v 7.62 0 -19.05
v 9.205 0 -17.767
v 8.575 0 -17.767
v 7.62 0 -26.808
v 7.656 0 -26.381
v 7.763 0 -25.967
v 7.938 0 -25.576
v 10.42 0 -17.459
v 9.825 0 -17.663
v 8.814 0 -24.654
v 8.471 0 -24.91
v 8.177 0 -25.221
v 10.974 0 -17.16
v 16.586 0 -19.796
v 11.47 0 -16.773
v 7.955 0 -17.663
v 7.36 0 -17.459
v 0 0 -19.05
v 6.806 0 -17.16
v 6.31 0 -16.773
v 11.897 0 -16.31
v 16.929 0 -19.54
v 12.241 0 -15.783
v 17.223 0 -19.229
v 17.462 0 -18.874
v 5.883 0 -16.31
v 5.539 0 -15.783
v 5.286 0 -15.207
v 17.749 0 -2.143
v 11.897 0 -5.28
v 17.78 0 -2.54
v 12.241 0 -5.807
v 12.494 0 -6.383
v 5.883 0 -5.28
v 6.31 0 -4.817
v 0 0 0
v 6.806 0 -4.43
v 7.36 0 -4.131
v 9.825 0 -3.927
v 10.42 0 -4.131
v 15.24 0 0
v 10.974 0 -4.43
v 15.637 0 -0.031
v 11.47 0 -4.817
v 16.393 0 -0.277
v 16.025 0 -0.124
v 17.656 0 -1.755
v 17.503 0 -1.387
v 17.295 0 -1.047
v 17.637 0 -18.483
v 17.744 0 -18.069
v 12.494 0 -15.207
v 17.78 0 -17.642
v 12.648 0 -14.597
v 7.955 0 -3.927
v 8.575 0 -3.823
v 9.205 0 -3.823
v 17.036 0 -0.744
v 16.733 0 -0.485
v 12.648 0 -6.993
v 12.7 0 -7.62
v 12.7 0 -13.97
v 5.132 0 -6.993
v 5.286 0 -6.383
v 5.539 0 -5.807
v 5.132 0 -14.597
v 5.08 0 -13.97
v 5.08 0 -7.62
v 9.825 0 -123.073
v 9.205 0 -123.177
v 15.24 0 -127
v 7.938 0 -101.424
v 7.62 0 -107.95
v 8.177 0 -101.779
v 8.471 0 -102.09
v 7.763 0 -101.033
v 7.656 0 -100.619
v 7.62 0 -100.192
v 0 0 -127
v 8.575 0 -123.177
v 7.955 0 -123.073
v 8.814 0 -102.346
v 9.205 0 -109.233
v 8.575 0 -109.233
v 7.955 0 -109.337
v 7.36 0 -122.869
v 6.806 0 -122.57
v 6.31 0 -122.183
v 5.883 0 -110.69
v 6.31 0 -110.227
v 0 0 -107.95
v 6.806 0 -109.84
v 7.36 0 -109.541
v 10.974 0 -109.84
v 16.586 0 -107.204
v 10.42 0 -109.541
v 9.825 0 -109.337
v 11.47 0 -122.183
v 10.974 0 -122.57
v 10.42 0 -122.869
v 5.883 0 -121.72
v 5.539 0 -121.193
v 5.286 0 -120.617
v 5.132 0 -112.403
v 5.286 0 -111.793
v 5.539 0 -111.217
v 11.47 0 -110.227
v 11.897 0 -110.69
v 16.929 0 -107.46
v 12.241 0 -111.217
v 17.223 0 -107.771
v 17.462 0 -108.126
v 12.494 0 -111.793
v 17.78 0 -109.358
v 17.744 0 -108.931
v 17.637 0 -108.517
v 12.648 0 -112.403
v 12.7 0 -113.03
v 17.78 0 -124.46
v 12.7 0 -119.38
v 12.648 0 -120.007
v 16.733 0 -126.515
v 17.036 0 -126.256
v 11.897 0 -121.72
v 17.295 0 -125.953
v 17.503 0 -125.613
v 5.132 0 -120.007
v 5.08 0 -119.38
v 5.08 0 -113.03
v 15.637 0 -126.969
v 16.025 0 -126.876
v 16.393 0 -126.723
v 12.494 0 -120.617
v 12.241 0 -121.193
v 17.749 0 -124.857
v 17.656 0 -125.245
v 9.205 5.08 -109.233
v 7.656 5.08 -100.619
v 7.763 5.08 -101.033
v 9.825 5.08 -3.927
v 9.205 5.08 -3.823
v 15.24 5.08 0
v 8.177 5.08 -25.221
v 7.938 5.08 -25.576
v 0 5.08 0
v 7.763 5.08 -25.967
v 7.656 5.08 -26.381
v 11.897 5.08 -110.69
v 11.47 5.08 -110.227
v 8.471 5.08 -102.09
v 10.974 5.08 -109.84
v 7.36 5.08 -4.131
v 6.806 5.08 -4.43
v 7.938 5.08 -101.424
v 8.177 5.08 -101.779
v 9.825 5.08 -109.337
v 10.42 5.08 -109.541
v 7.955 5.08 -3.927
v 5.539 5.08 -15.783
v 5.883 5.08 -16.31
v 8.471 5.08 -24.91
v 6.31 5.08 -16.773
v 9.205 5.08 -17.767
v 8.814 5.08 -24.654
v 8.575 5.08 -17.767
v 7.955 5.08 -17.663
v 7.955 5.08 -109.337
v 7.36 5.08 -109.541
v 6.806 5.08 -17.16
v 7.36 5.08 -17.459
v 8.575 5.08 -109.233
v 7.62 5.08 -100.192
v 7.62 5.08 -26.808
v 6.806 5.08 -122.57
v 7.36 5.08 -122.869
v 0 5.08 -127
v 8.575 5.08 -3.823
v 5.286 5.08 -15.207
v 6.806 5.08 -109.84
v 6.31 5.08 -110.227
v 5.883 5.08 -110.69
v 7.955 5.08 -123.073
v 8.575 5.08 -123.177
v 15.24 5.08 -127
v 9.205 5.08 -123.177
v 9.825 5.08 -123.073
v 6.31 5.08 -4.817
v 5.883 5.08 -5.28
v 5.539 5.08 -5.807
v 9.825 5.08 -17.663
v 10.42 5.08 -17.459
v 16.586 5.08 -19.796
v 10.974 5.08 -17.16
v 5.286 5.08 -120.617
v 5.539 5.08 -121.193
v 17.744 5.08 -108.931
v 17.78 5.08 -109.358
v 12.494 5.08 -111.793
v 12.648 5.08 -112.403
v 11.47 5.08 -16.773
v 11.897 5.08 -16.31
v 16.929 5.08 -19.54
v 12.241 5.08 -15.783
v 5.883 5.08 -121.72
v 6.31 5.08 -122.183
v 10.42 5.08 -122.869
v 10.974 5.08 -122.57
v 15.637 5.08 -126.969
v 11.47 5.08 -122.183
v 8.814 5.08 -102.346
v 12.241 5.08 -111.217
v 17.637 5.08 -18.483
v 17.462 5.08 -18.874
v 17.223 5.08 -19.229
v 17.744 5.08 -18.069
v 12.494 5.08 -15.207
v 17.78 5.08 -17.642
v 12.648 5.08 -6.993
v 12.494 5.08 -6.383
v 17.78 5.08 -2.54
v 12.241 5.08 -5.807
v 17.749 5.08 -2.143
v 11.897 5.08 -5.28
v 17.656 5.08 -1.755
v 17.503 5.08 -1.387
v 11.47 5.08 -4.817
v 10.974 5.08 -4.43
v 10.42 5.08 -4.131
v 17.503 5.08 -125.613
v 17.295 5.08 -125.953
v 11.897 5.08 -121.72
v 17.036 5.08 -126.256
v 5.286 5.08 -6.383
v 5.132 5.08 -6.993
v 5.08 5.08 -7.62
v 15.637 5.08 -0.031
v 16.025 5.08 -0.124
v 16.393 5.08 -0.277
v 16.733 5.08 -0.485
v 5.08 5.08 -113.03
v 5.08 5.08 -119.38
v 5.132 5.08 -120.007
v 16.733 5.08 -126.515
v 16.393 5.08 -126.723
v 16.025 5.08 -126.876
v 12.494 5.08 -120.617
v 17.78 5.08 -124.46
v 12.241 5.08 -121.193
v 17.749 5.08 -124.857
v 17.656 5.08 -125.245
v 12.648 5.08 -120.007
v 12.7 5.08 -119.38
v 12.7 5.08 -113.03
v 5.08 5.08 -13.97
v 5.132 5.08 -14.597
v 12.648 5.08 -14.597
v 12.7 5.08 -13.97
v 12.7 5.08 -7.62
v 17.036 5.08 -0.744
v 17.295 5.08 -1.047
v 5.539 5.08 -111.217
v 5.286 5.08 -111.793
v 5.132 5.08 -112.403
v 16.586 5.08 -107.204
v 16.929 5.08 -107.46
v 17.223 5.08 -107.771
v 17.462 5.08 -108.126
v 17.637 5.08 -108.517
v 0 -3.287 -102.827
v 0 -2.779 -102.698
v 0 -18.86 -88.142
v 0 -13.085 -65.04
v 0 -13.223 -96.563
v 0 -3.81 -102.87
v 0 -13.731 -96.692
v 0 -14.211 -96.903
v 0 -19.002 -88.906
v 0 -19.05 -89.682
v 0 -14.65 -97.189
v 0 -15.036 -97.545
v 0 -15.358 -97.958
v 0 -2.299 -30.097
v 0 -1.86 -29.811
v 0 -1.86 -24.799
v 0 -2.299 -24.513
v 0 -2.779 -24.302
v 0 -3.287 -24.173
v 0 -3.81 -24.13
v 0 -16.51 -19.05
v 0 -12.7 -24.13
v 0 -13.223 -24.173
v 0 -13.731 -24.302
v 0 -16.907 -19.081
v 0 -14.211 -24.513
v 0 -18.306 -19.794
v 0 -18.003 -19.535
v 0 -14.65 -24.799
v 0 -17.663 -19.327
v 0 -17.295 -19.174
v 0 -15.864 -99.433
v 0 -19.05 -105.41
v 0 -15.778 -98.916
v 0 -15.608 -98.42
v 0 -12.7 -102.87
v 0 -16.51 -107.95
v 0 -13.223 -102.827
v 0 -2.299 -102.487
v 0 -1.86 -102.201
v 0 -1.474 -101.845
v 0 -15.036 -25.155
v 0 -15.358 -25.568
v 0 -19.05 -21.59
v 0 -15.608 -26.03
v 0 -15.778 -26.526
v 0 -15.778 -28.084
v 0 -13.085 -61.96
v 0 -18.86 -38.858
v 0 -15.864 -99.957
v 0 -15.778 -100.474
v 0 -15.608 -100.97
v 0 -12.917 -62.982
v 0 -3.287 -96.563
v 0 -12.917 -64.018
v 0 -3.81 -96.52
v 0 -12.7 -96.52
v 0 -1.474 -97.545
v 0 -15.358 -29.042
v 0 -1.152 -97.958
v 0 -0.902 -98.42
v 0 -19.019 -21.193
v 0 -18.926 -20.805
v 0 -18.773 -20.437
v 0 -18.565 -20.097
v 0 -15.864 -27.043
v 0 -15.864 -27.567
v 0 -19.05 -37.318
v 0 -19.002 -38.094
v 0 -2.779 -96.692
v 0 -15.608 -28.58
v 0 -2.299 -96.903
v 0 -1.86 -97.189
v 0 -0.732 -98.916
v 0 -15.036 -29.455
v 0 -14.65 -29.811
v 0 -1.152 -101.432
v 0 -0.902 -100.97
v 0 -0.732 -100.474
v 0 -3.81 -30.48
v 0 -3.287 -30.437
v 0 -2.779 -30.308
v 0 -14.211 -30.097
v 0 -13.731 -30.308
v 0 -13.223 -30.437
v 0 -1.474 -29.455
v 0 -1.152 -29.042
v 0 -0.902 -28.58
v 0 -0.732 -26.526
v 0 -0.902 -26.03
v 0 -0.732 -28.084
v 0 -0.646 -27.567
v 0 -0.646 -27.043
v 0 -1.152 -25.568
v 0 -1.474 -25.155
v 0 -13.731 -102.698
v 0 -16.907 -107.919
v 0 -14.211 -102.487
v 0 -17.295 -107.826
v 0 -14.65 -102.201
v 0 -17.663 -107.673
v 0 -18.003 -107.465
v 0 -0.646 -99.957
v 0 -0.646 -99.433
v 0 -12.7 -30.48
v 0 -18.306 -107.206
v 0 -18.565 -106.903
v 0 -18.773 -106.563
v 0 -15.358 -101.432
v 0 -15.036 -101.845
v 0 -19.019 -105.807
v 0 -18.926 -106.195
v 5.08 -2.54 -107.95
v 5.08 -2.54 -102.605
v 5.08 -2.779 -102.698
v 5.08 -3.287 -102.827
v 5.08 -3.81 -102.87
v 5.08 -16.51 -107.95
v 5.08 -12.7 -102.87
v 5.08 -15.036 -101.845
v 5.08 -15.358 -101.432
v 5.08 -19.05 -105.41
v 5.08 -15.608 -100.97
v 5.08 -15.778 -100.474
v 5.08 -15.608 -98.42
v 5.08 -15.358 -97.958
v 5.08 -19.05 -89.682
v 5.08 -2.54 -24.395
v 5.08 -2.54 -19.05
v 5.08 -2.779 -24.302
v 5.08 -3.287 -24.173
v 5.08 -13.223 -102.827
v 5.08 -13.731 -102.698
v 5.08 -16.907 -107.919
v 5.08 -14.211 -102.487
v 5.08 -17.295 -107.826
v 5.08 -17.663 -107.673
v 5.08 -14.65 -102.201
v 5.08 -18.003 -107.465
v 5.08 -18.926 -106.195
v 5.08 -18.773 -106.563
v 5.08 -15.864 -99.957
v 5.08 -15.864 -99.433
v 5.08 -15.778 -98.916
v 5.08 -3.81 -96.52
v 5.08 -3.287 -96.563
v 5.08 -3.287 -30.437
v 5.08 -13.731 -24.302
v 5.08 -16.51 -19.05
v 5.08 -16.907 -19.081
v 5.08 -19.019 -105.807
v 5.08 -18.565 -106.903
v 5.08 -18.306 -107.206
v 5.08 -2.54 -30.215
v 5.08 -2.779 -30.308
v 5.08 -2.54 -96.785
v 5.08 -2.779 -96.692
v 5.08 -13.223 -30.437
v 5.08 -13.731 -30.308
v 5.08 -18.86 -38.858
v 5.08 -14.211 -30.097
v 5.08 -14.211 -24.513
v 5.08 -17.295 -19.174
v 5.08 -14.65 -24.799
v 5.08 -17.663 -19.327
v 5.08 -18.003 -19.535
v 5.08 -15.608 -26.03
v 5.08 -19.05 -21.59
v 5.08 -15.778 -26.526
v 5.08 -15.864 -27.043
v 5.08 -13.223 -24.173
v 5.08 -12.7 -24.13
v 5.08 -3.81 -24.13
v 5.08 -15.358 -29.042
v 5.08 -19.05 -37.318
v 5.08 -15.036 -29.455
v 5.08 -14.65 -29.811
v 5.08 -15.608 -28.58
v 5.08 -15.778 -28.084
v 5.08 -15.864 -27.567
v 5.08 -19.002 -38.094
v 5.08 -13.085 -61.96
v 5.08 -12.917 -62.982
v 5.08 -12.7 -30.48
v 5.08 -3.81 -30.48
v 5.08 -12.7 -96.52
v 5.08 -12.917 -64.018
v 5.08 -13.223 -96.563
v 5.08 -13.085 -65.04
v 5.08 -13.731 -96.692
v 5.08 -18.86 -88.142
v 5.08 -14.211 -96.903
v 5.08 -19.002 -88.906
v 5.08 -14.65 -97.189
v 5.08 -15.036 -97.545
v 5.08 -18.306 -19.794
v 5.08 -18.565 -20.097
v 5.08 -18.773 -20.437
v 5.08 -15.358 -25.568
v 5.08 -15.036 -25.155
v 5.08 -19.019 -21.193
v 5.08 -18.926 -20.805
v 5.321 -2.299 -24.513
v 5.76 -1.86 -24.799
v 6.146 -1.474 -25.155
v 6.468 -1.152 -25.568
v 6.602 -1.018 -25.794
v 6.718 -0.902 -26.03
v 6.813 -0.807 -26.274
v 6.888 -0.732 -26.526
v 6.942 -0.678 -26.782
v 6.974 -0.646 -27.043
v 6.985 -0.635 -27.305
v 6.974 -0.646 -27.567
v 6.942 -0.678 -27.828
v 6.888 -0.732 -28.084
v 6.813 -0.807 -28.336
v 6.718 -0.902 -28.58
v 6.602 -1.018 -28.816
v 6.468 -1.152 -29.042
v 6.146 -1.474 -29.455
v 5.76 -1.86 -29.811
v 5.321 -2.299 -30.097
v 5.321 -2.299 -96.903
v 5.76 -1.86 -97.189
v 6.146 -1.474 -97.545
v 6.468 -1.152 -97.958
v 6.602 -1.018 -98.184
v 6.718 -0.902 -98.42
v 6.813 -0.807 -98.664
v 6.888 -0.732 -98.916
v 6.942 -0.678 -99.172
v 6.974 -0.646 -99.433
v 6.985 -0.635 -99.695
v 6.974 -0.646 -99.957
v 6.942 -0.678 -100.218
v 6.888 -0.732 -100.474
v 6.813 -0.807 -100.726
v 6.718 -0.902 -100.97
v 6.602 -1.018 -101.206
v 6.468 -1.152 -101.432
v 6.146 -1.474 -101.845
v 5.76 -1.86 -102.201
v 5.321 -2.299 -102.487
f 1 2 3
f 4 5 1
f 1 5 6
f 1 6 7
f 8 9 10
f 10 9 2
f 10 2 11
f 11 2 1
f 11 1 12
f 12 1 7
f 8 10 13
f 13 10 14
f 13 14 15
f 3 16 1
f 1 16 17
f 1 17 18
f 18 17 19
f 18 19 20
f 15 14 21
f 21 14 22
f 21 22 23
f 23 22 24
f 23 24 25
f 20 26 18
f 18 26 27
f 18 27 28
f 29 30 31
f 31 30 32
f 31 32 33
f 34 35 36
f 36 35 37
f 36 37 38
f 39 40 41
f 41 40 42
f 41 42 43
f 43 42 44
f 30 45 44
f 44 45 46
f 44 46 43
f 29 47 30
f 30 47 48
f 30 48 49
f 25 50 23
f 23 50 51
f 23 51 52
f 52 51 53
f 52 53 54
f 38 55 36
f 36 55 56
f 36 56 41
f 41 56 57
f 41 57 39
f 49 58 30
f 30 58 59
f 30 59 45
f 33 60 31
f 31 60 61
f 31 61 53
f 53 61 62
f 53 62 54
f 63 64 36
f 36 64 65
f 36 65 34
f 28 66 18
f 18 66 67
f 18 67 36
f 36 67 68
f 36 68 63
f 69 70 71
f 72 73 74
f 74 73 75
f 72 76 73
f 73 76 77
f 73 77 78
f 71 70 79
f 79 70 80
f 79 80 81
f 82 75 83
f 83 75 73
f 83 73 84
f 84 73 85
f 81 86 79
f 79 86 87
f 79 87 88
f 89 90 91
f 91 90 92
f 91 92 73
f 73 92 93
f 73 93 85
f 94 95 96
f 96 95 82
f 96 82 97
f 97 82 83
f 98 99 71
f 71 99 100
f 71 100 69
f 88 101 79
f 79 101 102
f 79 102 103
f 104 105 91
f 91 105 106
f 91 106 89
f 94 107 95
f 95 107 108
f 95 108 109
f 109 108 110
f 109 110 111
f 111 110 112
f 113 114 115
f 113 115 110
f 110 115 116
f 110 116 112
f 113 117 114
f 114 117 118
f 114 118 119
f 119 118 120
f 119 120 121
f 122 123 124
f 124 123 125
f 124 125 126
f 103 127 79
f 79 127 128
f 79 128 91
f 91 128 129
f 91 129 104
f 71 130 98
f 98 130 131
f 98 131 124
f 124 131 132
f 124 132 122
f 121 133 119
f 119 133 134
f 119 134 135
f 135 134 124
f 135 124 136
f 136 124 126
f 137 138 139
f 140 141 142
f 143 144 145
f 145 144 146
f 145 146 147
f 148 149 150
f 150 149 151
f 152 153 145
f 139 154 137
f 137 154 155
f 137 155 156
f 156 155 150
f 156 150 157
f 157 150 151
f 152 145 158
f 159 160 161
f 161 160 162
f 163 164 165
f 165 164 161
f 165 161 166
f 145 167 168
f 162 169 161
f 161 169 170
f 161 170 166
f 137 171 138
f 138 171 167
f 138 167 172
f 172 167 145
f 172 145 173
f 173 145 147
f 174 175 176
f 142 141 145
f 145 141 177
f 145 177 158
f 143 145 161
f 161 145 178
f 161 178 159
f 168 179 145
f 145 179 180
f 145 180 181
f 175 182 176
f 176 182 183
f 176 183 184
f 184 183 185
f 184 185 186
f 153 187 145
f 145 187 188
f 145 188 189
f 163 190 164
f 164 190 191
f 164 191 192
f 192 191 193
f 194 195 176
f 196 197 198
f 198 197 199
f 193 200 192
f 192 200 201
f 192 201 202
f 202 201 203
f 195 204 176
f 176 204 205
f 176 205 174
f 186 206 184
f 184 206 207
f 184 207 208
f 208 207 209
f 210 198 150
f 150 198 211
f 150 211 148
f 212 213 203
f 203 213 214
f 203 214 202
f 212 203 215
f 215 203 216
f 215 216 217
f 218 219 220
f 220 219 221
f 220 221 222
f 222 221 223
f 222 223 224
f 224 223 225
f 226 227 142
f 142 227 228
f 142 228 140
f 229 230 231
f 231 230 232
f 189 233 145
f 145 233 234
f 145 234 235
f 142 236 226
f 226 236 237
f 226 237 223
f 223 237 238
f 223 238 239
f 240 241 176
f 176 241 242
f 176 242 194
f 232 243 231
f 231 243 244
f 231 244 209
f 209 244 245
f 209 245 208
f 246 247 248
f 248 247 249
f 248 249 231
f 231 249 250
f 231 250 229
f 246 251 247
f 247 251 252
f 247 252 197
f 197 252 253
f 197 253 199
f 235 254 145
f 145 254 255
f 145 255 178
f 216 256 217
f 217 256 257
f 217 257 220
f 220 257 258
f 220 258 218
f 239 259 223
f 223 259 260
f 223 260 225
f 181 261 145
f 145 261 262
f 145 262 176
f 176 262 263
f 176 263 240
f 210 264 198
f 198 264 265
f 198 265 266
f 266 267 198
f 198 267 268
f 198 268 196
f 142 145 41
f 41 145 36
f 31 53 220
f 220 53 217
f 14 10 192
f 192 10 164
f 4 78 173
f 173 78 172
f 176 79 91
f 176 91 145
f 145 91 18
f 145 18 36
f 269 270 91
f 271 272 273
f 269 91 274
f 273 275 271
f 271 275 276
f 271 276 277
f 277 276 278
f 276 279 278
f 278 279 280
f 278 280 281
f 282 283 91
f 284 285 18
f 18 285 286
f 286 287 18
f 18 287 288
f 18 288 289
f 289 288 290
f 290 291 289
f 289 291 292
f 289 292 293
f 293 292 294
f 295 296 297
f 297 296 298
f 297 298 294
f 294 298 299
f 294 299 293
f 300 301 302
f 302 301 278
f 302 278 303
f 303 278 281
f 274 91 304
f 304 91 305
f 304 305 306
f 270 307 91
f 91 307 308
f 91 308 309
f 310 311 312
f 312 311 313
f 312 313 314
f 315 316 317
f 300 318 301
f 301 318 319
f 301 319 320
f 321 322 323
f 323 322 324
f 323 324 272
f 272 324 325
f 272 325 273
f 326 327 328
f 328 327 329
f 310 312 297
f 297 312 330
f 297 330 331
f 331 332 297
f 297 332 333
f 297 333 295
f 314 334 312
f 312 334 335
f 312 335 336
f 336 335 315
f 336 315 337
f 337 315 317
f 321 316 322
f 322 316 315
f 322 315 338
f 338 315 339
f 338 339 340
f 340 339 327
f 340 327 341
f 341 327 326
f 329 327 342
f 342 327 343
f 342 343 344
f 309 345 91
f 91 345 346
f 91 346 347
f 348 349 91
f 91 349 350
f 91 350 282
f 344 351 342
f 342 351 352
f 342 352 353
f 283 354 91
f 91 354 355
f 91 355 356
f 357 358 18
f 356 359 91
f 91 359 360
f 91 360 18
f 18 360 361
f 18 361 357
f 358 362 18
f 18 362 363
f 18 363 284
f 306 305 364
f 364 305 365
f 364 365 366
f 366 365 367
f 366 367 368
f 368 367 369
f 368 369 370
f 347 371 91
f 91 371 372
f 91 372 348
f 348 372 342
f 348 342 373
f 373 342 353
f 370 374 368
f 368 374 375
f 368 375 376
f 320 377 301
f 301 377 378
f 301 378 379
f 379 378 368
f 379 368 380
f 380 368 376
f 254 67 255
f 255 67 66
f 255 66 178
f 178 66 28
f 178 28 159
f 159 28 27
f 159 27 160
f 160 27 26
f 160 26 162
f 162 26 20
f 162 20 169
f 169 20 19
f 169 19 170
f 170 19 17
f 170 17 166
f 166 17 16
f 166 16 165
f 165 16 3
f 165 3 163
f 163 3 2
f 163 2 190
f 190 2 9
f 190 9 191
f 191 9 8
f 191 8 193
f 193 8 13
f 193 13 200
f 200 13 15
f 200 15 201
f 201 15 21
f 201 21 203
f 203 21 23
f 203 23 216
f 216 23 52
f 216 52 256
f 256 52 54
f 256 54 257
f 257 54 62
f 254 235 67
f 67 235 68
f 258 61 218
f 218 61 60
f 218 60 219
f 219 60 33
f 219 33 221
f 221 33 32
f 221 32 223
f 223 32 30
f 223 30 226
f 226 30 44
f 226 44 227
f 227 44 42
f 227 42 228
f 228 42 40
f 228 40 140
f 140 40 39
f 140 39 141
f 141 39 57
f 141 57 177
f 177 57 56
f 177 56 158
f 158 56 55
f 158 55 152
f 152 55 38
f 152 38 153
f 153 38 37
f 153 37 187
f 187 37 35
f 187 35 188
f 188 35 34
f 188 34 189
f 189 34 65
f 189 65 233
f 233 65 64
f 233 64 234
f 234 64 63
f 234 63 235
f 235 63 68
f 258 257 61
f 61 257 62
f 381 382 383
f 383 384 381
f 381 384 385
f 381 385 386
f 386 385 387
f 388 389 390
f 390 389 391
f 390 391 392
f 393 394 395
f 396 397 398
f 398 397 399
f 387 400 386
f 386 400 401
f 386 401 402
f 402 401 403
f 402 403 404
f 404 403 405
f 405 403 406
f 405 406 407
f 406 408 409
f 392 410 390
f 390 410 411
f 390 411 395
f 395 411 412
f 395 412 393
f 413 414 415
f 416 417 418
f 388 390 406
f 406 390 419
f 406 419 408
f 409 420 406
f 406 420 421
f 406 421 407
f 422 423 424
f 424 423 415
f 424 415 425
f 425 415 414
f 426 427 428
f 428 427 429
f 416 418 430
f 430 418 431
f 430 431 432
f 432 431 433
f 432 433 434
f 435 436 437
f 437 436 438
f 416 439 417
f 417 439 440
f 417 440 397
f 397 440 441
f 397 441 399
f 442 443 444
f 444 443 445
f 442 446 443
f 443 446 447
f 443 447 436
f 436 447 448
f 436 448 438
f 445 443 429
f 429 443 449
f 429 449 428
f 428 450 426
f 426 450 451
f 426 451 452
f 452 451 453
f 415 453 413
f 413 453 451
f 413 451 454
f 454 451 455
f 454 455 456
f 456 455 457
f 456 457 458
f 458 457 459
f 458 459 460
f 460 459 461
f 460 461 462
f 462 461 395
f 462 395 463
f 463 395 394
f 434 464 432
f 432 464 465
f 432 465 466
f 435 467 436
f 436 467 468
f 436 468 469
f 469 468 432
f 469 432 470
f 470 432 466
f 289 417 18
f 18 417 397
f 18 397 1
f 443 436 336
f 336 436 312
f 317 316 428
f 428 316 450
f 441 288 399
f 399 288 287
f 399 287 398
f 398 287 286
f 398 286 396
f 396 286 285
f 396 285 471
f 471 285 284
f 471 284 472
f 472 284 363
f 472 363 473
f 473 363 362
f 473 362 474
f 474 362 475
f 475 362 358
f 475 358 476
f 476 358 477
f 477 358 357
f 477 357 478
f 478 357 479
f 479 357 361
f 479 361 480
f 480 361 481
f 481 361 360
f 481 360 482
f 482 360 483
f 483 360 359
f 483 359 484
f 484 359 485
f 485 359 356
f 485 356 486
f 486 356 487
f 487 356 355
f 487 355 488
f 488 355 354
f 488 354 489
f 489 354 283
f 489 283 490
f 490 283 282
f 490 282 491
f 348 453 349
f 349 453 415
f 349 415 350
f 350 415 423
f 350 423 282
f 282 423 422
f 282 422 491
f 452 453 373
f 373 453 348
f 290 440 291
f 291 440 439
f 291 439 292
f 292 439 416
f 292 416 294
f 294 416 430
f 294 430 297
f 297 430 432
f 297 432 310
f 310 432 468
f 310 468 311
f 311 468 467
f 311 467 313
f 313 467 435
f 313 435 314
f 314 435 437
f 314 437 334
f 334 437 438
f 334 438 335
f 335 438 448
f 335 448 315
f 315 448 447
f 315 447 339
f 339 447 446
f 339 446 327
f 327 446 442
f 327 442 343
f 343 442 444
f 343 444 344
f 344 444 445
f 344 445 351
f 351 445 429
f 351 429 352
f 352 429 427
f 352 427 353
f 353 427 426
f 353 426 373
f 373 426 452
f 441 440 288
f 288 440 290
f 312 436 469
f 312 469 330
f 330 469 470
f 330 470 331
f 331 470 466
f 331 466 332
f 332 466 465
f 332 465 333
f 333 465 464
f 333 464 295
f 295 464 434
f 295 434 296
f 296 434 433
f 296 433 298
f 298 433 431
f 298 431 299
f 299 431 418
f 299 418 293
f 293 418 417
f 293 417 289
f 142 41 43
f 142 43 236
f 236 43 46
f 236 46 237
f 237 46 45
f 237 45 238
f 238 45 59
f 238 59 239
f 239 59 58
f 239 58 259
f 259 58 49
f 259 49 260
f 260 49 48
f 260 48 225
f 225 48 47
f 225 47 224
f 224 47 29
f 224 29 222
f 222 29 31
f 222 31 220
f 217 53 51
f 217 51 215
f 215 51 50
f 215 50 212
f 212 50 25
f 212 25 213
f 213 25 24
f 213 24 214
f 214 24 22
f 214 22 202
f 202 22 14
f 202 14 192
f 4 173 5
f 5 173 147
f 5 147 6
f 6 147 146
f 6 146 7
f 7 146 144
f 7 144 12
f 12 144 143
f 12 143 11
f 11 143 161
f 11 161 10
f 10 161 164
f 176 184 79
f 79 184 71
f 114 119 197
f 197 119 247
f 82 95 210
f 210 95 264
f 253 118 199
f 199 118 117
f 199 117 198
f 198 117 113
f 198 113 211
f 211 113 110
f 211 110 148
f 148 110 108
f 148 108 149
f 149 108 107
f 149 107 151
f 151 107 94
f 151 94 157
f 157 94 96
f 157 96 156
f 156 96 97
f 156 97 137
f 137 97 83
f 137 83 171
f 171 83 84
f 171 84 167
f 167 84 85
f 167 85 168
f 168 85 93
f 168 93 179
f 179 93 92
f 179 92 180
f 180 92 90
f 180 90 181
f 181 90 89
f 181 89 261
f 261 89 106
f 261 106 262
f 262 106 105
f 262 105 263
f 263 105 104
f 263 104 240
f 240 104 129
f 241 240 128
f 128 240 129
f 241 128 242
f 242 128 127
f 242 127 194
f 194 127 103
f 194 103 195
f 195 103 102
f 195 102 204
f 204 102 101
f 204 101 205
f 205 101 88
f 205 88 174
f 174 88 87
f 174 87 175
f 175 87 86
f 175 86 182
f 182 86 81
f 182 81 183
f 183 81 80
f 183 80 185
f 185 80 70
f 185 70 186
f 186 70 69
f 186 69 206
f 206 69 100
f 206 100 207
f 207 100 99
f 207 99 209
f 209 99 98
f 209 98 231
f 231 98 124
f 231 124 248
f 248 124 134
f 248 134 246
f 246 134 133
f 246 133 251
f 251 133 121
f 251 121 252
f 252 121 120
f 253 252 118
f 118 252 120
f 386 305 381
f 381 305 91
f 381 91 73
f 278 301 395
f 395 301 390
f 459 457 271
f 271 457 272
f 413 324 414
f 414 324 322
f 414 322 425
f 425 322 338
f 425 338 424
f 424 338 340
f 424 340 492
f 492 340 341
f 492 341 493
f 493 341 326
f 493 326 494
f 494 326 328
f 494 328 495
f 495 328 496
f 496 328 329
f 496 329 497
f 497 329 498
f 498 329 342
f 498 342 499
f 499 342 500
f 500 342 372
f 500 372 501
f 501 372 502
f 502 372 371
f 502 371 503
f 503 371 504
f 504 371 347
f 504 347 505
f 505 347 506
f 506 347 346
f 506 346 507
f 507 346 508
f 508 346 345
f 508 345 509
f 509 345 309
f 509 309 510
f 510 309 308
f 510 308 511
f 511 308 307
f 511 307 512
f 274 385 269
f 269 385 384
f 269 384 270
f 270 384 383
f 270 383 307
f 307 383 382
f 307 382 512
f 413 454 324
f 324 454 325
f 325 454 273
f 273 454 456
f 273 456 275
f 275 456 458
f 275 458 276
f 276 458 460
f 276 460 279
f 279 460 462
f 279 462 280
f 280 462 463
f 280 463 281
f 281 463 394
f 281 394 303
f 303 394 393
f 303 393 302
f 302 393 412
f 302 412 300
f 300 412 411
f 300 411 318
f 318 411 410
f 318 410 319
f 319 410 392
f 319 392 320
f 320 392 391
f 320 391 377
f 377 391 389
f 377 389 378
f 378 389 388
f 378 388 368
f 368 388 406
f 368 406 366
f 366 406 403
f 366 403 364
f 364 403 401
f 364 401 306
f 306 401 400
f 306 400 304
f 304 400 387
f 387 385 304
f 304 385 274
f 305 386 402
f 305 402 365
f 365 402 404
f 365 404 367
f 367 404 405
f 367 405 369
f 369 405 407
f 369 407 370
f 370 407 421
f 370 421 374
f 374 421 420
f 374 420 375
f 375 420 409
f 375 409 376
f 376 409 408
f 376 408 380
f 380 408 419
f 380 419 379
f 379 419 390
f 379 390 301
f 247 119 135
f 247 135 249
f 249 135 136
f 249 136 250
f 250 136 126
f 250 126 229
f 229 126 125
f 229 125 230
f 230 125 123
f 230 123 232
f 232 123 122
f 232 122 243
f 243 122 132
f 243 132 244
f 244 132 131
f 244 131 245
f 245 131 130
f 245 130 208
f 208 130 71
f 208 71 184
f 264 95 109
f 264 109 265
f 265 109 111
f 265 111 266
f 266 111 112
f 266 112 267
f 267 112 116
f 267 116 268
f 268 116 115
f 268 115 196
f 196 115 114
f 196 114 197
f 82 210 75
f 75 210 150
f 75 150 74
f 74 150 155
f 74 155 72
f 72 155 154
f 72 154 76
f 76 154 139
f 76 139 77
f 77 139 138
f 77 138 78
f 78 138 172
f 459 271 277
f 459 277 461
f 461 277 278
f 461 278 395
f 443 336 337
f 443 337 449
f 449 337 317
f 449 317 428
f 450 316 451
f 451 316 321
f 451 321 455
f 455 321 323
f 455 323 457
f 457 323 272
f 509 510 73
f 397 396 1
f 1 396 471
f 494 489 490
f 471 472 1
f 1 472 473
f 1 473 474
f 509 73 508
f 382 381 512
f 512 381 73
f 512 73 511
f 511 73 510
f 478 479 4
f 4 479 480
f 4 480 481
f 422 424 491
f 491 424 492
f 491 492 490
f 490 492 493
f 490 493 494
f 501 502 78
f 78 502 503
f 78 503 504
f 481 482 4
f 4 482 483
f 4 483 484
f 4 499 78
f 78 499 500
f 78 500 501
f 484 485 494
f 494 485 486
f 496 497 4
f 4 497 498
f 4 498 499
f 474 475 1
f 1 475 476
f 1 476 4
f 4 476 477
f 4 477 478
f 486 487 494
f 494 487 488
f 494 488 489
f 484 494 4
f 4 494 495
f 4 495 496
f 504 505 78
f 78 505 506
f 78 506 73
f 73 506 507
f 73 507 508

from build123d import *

# Parameters (mm, degrees)
TOP_DEPTH             = 5.08
SKETCH2_W             = 5.08
SKETCH2_H             = 44.45
BOLT_ATTACH_DEPTH     = 19.05
BOLTHOLES_LOWER_DEPTH = 5.08
MIRROREDFILLET_R      = 2.54
CENTERFILLET_R        = 6.35
CHAMFER1_SIZE         = 2.54


with BuildPart() as part:
    # Sketch1 → top (new body)
    with BuildSketch(Plane(origin=(0, 0, 0), x_dir=(1, 0, 0), z_dir=(0, 1, 0))):
        Polygon((0, 0), (0, 63.5), (7.62, 63.5), (7.62, 25.4), (17.78, 19.05), (17.78, 0), align=None)
        with BuildLine():
            Line((12.7, 13.97), (12.7, 7.62))
            ThreePointArc((12.7, 7.62), (8.89, 3.81), (5.08, 7.62))
            Line((5.08, 7.62), (5.08, 13.97))
            ThreePointArc((5.08, 13.97), (8.89, 17.78), (12.7, 13.97))
        make_face(mode=Mode.SUBTRACT)
    extrude(amount=TOP_DEPTH)

    # Sketch2 → bolt_attach (add)
    with BuildSketch(Plane.XZ):
        with Locations((2.54, -41.275)):
            Rectangle(SKETCH2_W, SKETCH2_H)
    extrude(amount=BOLT_ATTACH_DEPTH)

    # Sketch3 → boltholes_lower (cut)
    with BuildSketch(Plane(origin=(5.08, 0, 0), x_dir=(0, 0, -1), z_dir=(1, 0, 0))):
        with BuildLine():
            Line((30.48, -3.81), (30.48, -12.7))
            ThreePointArc((30.48, -12.7), (27.305, -15.875), (24.13, -12.7))
            Line((24.13, -12.7), (24.13, -3.81))
            ThreePointArc((24.13, -3.81), (27.305, -0.635), (30.48, -3.81))
        make_face()
        Polygon((63.5, -19.05), (63.5, -12.7), (38.1, -19.05), align=None)
    extrude(amount=-BOLTHOLES_LOWER_DEPTH, mode=Mode.SUBTRACT)

    # mirroredfillet
    mirroredfillet_edges = [part.edges().sort_by_distance(p)[0] for p in [
        (7.62, 2.54, -25.4),
        (17.78, 2.54, -19.05),
        (17.78, 2.54, 0),
        (2.54, -19.05, -19.05),
    ]]
    fillet(mirroredfillet_edges, radius=MIRROREDFILLET_R)

    # Mirror2: part across face


with BuildPart() as part_1:
    add(part.part)
    add(part.part.mirror(Plane(origin=(3.01625, -3.01625, -63.5), x_dir=(1, 0, 0), z_dir=(0, 0, -1))))

    # centerfillet
    centerfillet_edges = [part_1.edges().sort_by_distance(p)[0] for p in [
        (2.54, -12.7, -63.5),
        (2.54, -19.05, -88.9),
        (2.54, -19.05, -38.1),
    ]]
    fillet(centerfillet_edges, radius=CENTERFILLET_R)

    # Chamfer1
    # the kernel refuses this chamfer: 2.54 mm, written as the material it adds along each edge
    with BuildSketch(Plane(origin=(5.08, 0, -19.05), x_dir=(0.9996219169112968, 0.02749587661058638, 0), z_dir=(0, 0, -1))) as chamfer1_piece_1_section:
        Polygon((CHAMFER1_SIZE * 0.999621916911, CHAMFER1_SIZE * 0.0274958766106), (-CHAMFER1_SIZE * 0.0274958766106, CHAMFER1_SIZE * 0.999621916911), (0, 0), align=None)
    chamfer1_piece_1 = extrude(amount=88.9, mode=Mode.PRIVATE)
    chamfer1_piece_1 = chamfer1_piece_1 - Plane(origin=(5.940102797, -3.81, -27.305), x_dir=(0, 0, 1), z_dir=(1, 0, 0)) * Cylinder(3.175, 188, mode=Mode.PRIVATE)
    chamfer1_piece_1 = chamfer1_piece_1 - Plane(origin=(5.940102797, -3.81, -99.695), x_dir=(0, 0, -1), z_dir=(1, 0, 0)) * Cylinder(3.175, 188, mode=Mode.PRIVATE)
    add(chamfer1_piece_1)


solid = part_1.part
